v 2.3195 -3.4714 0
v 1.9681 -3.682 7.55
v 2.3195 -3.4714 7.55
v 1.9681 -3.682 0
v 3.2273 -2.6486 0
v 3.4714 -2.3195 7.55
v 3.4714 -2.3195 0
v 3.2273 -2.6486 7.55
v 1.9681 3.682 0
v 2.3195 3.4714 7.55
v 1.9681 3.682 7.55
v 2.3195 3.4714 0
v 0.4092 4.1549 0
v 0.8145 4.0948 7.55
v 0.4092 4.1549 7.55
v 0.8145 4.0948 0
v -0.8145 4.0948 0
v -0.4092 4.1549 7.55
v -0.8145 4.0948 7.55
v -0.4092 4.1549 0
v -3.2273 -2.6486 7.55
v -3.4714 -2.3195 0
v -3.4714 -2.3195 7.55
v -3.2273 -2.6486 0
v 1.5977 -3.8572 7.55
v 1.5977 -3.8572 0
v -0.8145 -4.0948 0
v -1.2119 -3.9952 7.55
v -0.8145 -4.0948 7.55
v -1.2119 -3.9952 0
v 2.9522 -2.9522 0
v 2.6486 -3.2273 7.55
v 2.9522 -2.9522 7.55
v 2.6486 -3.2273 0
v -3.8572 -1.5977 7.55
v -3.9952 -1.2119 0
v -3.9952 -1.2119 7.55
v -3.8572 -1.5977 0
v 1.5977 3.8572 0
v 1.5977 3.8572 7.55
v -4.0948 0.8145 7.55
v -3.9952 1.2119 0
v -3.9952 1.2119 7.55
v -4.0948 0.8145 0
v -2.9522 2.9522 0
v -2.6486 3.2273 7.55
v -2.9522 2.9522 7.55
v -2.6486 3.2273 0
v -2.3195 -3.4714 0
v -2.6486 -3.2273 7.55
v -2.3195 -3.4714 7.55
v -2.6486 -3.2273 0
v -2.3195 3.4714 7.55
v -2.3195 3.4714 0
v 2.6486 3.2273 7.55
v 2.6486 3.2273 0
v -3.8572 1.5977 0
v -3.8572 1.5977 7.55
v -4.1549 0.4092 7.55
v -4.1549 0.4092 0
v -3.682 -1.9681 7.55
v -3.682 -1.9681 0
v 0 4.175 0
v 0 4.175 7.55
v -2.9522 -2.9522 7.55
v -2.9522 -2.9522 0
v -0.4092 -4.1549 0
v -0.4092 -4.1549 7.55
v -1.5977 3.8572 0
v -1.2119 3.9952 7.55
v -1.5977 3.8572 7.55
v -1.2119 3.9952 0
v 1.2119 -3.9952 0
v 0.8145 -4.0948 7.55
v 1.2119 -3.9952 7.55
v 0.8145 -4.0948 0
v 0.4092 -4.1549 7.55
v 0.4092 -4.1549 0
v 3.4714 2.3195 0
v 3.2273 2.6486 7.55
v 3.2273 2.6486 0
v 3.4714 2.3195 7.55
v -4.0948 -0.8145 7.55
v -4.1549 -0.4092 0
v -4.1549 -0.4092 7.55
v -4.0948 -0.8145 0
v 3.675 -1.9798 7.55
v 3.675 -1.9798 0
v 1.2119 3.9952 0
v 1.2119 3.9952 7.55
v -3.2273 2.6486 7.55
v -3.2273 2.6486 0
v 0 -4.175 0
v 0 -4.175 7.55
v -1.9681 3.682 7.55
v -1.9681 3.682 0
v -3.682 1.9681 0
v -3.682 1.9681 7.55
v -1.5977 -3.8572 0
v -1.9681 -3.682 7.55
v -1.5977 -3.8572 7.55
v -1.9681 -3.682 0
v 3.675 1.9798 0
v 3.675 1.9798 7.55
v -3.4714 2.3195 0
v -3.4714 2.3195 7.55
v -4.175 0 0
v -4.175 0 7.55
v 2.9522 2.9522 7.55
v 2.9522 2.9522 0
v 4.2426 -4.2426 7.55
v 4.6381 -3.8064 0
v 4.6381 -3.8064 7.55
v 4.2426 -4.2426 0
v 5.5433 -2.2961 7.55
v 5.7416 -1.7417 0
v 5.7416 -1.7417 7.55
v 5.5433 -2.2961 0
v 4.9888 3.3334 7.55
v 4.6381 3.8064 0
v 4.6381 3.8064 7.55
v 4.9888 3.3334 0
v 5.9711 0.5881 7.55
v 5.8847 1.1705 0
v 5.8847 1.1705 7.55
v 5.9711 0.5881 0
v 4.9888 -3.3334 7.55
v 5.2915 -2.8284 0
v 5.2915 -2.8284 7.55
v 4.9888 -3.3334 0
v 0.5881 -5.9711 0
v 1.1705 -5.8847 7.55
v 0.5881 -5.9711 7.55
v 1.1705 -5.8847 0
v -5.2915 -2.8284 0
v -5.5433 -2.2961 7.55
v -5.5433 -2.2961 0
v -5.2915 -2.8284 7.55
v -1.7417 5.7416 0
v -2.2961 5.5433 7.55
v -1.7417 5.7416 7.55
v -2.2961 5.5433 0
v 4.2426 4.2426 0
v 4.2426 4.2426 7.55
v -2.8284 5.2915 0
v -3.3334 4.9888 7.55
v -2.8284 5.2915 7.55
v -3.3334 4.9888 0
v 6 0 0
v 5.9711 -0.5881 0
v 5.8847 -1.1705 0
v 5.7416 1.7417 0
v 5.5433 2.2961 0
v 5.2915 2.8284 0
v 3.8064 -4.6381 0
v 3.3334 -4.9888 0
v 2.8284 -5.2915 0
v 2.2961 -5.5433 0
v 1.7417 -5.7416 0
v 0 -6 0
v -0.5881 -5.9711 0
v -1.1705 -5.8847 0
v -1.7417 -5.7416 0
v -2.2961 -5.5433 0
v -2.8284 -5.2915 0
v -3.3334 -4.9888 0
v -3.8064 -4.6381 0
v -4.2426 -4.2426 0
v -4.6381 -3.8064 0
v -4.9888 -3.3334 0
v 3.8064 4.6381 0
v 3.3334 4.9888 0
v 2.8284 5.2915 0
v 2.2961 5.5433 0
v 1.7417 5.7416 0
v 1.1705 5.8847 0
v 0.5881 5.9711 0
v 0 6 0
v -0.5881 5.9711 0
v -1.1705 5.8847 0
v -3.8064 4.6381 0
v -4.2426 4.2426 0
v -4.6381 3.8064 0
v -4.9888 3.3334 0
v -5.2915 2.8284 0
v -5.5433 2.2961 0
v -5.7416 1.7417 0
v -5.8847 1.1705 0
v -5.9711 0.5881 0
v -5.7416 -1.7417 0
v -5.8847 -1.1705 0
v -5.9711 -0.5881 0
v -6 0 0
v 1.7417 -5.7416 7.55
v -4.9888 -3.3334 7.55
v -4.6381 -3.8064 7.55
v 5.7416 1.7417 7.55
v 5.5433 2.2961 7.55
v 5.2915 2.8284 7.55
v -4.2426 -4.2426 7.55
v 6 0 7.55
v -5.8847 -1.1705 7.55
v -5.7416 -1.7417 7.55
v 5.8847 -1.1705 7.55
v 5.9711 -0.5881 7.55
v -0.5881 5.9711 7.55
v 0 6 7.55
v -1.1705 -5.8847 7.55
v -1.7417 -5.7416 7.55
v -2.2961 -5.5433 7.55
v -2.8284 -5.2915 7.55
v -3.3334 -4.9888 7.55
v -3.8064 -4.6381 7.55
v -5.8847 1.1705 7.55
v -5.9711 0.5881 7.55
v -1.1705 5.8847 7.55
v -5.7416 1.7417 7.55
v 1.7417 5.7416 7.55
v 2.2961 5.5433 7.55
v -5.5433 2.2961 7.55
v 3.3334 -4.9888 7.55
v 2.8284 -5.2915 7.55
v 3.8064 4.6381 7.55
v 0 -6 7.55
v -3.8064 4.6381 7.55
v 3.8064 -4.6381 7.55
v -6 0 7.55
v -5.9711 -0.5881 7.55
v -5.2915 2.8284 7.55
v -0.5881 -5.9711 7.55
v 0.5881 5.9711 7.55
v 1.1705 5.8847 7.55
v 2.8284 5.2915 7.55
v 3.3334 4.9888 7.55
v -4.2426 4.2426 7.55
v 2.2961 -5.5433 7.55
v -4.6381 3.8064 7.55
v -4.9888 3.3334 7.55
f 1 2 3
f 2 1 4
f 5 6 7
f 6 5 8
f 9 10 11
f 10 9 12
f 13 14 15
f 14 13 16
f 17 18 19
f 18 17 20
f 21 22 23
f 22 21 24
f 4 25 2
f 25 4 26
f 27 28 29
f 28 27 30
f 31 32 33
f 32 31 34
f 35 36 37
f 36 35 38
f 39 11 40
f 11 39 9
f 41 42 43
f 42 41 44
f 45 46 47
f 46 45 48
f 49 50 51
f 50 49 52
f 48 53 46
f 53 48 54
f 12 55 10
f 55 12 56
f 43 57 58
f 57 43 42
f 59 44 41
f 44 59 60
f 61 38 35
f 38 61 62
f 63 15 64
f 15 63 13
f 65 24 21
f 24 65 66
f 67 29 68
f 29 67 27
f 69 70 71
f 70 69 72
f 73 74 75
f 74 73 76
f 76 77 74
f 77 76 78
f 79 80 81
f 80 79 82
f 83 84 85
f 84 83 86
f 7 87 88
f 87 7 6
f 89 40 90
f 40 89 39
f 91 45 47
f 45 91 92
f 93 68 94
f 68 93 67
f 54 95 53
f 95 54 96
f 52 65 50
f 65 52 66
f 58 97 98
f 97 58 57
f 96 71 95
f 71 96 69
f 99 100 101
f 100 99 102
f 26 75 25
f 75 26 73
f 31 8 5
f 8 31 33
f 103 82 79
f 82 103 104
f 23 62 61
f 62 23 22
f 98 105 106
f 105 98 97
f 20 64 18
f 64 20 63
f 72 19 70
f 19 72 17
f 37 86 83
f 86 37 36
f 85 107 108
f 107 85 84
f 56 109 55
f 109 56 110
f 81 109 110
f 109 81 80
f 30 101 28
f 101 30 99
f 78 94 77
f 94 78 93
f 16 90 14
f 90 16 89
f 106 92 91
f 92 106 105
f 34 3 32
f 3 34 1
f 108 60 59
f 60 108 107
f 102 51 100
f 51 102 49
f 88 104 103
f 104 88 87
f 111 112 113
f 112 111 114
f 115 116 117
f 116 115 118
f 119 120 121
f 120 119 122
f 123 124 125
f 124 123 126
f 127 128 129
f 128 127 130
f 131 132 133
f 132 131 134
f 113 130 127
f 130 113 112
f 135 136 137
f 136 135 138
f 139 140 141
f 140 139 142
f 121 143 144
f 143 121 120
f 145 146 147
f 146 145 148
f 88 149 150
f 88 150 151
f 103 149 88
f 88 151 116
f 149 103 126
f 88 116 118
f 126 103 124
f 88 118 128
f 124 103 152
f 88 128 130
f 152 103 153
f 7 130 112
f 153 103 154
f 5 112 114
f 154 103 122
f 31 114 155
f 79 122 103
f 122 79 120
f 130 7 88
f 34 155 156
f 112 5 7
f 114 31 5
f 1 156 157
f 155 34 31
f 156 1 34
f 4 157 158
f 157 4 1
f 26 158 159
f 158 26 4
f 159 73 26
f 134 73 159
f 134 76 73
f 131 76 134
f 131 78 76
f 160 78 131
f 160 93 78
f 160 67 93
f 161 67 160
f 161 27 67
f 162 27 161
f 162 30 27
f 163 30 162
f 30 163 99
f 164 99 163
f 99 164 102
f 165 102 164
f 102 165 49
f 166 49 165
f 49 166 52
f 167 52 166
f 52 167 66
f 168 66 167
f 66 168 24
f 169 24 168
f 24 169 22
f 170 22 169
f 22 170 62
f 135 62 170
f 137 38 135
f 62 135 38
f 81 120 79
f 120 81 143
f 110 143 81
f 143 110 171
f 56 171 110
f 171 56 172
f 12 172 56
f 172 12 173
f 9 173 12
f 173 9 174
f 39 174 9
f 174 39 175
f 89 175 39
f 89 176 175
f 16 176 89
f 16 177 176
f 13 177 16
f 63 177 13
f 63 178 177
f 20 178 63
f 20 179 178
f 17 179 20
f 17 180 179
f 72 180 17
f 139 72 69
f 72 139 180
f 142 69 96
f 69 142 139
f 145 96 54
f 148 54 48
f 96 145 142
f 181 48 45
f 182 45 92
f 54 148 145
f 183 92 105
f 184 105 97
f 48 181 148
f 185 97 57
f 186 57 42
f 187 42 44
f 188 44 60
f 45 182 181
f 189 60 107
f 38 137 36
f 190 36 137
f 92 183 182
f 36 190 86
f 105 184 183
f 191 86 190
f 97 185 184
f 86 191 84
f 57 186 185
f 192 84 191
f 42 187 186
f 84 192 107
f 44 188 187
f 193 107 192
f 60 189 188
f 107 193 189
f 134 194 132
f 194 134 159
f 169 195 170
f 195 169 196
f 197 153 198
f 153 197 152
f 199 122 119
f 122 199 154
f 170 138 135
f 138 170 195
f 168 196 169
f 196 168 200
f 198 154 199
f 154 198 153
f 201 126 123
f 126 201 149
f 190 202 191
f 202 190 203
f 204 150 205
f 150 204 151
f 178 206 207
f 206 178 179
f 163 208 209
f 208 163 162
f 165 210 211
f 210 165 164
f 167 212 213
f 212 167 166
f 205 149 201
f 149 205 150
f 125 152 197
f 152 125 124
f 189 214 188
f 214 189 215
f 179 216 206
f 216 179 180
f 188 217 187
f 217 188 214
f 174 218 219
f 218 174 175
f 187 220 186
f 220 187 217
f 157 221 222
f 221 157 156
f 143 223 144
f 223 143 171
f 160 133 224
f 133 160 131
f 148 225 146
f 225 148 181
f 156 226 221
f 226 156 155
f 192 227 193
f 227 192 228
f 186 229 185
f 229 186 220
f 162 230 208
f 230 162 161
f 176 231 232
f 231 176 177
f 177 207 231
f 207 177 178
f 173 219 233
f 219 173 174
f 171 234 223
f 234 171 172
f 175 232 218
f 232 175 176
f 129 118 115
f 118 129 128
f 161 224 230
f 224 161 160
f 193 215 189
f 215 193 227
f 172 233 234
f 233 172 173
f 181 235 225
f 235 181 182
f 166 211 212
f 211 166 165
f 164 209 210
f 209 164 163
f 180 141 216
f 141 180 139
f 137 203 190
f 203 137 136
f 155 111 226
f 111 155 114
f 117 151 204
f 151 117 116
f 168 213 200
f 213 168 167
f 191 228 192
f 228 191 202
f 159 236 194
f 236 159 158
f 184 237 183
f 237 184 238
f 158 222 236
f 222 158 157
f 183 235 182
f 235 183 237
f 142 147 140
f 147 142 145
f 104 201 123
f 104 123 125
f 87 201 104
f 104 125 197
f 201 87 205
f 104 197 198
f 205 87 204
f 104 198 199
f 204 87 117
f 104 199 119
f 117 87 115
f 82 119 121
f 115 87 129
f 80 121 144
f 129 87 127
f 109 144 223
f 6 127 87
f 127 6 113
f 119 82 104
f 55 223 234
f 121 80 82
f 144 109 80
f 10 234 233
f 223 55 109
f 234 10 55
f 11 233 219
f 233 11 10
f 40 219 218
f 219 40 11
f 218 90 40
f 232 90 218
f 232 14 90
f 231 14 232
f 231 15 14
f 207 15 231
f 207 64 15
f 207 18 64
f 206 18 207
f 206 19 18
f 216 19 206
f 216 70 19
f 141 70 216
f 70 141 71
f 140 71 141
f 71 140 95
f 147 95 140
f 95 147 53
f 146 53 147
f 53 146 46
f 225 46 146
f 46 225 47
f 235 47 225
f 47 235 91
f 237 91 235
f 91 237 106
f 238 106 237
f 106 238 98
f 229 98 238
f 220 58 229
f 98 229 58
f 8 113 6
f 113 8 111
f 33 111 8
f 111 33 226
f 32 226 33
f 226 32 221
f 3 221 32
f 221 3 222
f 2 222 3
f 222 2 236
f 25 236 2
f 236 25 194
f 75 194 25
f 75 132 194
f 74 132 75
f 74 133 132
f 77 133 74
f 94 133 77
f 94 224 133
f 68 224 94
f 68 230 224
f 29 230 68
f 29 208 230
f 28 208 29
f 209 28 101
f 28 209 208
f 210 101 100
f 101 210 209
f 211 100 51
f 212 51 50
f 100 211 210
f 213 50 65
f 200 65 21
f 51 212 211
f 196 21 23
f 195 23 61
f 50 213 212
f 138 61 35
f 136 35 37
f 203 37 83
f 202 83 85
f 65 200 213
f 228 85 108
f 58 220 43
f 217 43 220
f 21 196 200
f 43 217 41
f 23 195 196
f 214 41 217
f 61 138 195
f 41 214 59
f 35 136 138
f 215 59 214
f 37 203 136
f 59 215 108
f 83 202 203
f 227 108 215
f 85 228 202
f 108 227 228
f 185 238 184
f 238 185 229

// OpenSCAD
// file: parameters.scad
// =============================================================================
// Gen-CD — nightly 2026-10-14 (physics_scorer, honest magpylib watts)
// Push past Gen-CA on the same arc-nested one-plate architecture: poles out to R86, bobbins r65–105 × 4.95 mm copper. Full-resolution scorer picks this window at ≈8.56 W (386 m, at the wire budget) with a Ø229 stator that still packs; thinner-copper R86 tips (r65–107 × 4.65) need Ø232+ and would not pack. Same 8 bolt-on arcs/rotor + D-flat hub + open-centre stator + in-place bobbin bases that unlocked Gen-CA.
// Clocking 0 deg (magnets N facing S) + D-flat keyed bore + index notch + flip-symmetric hole map.
// Windable 2-piece bobbin; turns = physics_scorer turns_fit; copper only between flanges.
// Steel back-iron: 2× Ø198 × 4.76 mm (3/16") mild-steel discs (steel_backiron_disc.dxf); magnets sit ON the steel
// (through-pockets) -> score with --back-iron. Night 2026-10-14.
// =============================================================================
topology            = "dual_rotor";

// --- Wire / winding (physics_scorer winding-fit) -------------------------------
wire_awg            = 26;
wire_od             = 0.45;     // insulated OD mm (bare 0.405)
fill_realistic      = 0.65;     // insulated-wire area / window (DENSE layered wind with a jig; scorer cap 0.65)
turns               = 370;       // = physics_scorer turns_fit (do NOT raise)
coil_former_type    = "bobbin";
coil_core_inset     = 18.31;     // radial copper build: hub = copper boundary inset by this
wind_build_axial    = 0.0;      // nothing proud of the flanges
wind_build_radial   = 0.0;

// --- Bobbin (base + lid) ---------------------------------------------------------
coil_id_r           = 65.00;    // copper boundary sector
coil_od_r           = 105.00;
span_deg            = 26.91;    // = pitch - 2*asin((wall+0.85)/coil_id_r) -> >=1.2 mm stator web
former_web          = 4.95;     // copper height between flanges (TALL copper: steel keeps Bz up)
flange_t            = 0.80;     // >= 0.8 mm FDM wall rule (tall winds push on the flanges)
wall                = 0.80;     // flange lip beyond copper
former_bare_h       = former_web + 2 * flange_t;
coil_envelope_h     = former_bare_h + 2 * wind_build_axial;
tab_w               = 7.0;
tab_len             = 7.0;
tab_h               = former_bare_h / 2;
pin_d               = 1.9;      // 1.75 mm filament locating pin
coil_mount_r        = coil_od_r + 0.2 + 4.0;
lead_y              = 1.6;
lead_slot_w         = 0.9;
lead_groove_d       = 0.6;

// --- Gap -------------------------------------------------------------------------
run_clear           = 0.50;     // rotor face -> flange
gap_spacer_h        = run_clear + wind_build_axial;
m2m                 = coil_envelope_h + 2 * run_clear;   // rotor face to rotor face (= gap_sleeve length)

// --- Stator ----------------------------------------------------------------------
coil_stations       = 12;
bay_clear           = 0.35;     // 0.35 mm: bobbin BASES print IN PLACE inside the stator bays (print-in-place gap), then pop out
stator_thick        = former_bare_h;                        // bobbins flush both faces
stator_od           = 229.0;
shaft_clear_stator  = 14.0;     // stator is static; gap sleeve OD 12 spins inside
stator_ir           = 59.85;    // ANNULAR stator: open centre (nested one-plate pack); inner rim 4.0 mm

// --- Rotor(s) --------------------------------------------------------------------
magnet_Br           = 1.43;     // N52
magnet_d_large      = 20.0;
magnet_h_large      = 5.0;      // one O20x5 per pocket
magnet_h_small      = 5.0;      // unused: no O5 pockets in this kit
halbach_magnetisation = "none";  // NO O5 assist magnets in this kit (scan: they lower the 4-pole score)
rotor_b_same_axis   = true;     // same-index magnets share one axis: N faces S across the gap
large_pocket_d      = 20.3;
small_pocket_d      = 5.3;
pocket_h            = 5.00;     // THROUGH the carrier: magnet back face sits on the steel disc (FLUSH seat: carrier = magnet height, magnet face level with the rotor face)
large_n             = 8;
R_large             = 86.0;
small_r_list        = [];       // no O5 pockets
carrier_od          = 198.0;
ring_ir             = 72.85;    // RING rotor: PLA magnet ring r ring_ir..carrier_od/2 (steel disc = structural rotor)
hub_flange_od       = 74.0;     // separate rotor_hub flange (inside the ring, flush with the ring face)
csk_d               = 6.6;      // M3 countersunk head pocket (ISO 10642 head 6.0 nominal) on the stator face
csk_depth           = 1.55;     // = (csk_d - m3_clear) / 2: 90 deg cone; head sits 0.3 mm below the face
n_seg               = 8;        // magnet-carrier ARCS per rotor (segmented carrier)
seg_deg             = 360 / n_seg;
seg_start           = -22.5;   // arc edge angle (between pocket 0 and its clamp bolt)
seg_kerf_deg        = 0.4;      // gap between neighbouring arcs on the steel
carrier_thick       = pocket_h;
hub_h               = 12.0;     // > steel_t + insert: radial set-screw clears the steel
hub_od              = 24.0;     // slim hub so the M4 brace rods fit at R~18 inside the coil ring
hub_insert_d        = 4.0;      // M3 heat-set insert, radial, bears on the D-flat
rotor_b_offset_deg  = 0.0;      // CLOCKING: magnets directly opposite
shaft_key           = "dflat";
dflat_depth         = 0.5;      // 8 mm shaft with 0.5 mm flat (7.5 across flat)
index_notch_d       = 3.0;

// --- Steel back-iron (buyable laser-cut) -------------------------------------------
steel_t             = 4.76;      // mild steel thickness (image method ignores it; sized from steel_flux.py so the return path stays well below saturation)
steel_center_hole   = 26.0;     // slips over the rotor hub (OD 24)
steel_od            = carrier_od;   // steel disc OD = rotor carrier OD

// --- Modular MAX interface ----------------------------------------------------------
shaft_bore          = 8.35;
dflat_x             = 4.0 - dflat_depth + (shaft_bore - 8.0) / 2;
bearing_d           = 21.85;
bearing_h           = 7.2;
m3_clear            = 3.5;
bolt_r_inner        = 30.0;     // M3 steel-disc clamp bolts (inside the magnet ring)
bolt_n_inner        = 4;
bolt_inner_angles   = [0, 90, 180, 270];
bolt_r_outer        = 86.0;     // second M3 steel-disc clamp ring
bolt_outer_angles   = [22.5, 67.5, 112.5, 157.5, 202.5, 247.5, 292.5, 337.5];
flange_bolt_r       = 109.5;     // frame rods: OUTSIDE the rotor OD (rotors spin inside them)
flange_bolt_n       = 4;
flange_bolt_offset  = 45.00;    // between coil stations -> never cuts a lead groove/tab
brace_r             = 18.0;
brace_d             = 4.3;      // temporary M4 jack rods (assembly only)
brace_n             = 4;
brace_angles        = [45, 135, 225, 315];          // flip-symmetric

spacer_pad_od       = 14.0;
spacer_pad_id       = m3_clear;
endbell_od          = 229.0;
endbell_thick       = 8.0;
endbell_shaft_clear = 10.0;
collar_h            = 10.0;
standoff_od         = 9.0;
frame_standoff_h    = run_clear + carrier_thick + hub_h + collar_h + 2.0;
sleeve_od           = 12.0;
plate_max_mm        = 410;

$fn = 64;
// main file
// Gen-CD — gap sleeve: rigid spacer on the shaft BETWEEN the two rotor carriers (passes through the stator
// hole). Length = m2m, so it sets the magnet gap and carries the full magnet pull. Print x1, upright.
include <parameters.scad>;
$fn = 64;
// D-flat keyed bore: flat faces +X (angle 0 = magnet pocket 0 = index notch)
module dflat_bore(h) {
    intersection() {
        cylinder(d=shaft_bore, h=h);
        translate([-shaft_bore, -shaft_bore, 0]) cube([shaft_bore + dflat_x, 2*shaft_bore, h]);
    }
}

difference() {
    cylinder(d=sleeve_od, h=m2m);
    translate([0, 0, -0.1]) dflat_bore(m2m + 0.2);
}
